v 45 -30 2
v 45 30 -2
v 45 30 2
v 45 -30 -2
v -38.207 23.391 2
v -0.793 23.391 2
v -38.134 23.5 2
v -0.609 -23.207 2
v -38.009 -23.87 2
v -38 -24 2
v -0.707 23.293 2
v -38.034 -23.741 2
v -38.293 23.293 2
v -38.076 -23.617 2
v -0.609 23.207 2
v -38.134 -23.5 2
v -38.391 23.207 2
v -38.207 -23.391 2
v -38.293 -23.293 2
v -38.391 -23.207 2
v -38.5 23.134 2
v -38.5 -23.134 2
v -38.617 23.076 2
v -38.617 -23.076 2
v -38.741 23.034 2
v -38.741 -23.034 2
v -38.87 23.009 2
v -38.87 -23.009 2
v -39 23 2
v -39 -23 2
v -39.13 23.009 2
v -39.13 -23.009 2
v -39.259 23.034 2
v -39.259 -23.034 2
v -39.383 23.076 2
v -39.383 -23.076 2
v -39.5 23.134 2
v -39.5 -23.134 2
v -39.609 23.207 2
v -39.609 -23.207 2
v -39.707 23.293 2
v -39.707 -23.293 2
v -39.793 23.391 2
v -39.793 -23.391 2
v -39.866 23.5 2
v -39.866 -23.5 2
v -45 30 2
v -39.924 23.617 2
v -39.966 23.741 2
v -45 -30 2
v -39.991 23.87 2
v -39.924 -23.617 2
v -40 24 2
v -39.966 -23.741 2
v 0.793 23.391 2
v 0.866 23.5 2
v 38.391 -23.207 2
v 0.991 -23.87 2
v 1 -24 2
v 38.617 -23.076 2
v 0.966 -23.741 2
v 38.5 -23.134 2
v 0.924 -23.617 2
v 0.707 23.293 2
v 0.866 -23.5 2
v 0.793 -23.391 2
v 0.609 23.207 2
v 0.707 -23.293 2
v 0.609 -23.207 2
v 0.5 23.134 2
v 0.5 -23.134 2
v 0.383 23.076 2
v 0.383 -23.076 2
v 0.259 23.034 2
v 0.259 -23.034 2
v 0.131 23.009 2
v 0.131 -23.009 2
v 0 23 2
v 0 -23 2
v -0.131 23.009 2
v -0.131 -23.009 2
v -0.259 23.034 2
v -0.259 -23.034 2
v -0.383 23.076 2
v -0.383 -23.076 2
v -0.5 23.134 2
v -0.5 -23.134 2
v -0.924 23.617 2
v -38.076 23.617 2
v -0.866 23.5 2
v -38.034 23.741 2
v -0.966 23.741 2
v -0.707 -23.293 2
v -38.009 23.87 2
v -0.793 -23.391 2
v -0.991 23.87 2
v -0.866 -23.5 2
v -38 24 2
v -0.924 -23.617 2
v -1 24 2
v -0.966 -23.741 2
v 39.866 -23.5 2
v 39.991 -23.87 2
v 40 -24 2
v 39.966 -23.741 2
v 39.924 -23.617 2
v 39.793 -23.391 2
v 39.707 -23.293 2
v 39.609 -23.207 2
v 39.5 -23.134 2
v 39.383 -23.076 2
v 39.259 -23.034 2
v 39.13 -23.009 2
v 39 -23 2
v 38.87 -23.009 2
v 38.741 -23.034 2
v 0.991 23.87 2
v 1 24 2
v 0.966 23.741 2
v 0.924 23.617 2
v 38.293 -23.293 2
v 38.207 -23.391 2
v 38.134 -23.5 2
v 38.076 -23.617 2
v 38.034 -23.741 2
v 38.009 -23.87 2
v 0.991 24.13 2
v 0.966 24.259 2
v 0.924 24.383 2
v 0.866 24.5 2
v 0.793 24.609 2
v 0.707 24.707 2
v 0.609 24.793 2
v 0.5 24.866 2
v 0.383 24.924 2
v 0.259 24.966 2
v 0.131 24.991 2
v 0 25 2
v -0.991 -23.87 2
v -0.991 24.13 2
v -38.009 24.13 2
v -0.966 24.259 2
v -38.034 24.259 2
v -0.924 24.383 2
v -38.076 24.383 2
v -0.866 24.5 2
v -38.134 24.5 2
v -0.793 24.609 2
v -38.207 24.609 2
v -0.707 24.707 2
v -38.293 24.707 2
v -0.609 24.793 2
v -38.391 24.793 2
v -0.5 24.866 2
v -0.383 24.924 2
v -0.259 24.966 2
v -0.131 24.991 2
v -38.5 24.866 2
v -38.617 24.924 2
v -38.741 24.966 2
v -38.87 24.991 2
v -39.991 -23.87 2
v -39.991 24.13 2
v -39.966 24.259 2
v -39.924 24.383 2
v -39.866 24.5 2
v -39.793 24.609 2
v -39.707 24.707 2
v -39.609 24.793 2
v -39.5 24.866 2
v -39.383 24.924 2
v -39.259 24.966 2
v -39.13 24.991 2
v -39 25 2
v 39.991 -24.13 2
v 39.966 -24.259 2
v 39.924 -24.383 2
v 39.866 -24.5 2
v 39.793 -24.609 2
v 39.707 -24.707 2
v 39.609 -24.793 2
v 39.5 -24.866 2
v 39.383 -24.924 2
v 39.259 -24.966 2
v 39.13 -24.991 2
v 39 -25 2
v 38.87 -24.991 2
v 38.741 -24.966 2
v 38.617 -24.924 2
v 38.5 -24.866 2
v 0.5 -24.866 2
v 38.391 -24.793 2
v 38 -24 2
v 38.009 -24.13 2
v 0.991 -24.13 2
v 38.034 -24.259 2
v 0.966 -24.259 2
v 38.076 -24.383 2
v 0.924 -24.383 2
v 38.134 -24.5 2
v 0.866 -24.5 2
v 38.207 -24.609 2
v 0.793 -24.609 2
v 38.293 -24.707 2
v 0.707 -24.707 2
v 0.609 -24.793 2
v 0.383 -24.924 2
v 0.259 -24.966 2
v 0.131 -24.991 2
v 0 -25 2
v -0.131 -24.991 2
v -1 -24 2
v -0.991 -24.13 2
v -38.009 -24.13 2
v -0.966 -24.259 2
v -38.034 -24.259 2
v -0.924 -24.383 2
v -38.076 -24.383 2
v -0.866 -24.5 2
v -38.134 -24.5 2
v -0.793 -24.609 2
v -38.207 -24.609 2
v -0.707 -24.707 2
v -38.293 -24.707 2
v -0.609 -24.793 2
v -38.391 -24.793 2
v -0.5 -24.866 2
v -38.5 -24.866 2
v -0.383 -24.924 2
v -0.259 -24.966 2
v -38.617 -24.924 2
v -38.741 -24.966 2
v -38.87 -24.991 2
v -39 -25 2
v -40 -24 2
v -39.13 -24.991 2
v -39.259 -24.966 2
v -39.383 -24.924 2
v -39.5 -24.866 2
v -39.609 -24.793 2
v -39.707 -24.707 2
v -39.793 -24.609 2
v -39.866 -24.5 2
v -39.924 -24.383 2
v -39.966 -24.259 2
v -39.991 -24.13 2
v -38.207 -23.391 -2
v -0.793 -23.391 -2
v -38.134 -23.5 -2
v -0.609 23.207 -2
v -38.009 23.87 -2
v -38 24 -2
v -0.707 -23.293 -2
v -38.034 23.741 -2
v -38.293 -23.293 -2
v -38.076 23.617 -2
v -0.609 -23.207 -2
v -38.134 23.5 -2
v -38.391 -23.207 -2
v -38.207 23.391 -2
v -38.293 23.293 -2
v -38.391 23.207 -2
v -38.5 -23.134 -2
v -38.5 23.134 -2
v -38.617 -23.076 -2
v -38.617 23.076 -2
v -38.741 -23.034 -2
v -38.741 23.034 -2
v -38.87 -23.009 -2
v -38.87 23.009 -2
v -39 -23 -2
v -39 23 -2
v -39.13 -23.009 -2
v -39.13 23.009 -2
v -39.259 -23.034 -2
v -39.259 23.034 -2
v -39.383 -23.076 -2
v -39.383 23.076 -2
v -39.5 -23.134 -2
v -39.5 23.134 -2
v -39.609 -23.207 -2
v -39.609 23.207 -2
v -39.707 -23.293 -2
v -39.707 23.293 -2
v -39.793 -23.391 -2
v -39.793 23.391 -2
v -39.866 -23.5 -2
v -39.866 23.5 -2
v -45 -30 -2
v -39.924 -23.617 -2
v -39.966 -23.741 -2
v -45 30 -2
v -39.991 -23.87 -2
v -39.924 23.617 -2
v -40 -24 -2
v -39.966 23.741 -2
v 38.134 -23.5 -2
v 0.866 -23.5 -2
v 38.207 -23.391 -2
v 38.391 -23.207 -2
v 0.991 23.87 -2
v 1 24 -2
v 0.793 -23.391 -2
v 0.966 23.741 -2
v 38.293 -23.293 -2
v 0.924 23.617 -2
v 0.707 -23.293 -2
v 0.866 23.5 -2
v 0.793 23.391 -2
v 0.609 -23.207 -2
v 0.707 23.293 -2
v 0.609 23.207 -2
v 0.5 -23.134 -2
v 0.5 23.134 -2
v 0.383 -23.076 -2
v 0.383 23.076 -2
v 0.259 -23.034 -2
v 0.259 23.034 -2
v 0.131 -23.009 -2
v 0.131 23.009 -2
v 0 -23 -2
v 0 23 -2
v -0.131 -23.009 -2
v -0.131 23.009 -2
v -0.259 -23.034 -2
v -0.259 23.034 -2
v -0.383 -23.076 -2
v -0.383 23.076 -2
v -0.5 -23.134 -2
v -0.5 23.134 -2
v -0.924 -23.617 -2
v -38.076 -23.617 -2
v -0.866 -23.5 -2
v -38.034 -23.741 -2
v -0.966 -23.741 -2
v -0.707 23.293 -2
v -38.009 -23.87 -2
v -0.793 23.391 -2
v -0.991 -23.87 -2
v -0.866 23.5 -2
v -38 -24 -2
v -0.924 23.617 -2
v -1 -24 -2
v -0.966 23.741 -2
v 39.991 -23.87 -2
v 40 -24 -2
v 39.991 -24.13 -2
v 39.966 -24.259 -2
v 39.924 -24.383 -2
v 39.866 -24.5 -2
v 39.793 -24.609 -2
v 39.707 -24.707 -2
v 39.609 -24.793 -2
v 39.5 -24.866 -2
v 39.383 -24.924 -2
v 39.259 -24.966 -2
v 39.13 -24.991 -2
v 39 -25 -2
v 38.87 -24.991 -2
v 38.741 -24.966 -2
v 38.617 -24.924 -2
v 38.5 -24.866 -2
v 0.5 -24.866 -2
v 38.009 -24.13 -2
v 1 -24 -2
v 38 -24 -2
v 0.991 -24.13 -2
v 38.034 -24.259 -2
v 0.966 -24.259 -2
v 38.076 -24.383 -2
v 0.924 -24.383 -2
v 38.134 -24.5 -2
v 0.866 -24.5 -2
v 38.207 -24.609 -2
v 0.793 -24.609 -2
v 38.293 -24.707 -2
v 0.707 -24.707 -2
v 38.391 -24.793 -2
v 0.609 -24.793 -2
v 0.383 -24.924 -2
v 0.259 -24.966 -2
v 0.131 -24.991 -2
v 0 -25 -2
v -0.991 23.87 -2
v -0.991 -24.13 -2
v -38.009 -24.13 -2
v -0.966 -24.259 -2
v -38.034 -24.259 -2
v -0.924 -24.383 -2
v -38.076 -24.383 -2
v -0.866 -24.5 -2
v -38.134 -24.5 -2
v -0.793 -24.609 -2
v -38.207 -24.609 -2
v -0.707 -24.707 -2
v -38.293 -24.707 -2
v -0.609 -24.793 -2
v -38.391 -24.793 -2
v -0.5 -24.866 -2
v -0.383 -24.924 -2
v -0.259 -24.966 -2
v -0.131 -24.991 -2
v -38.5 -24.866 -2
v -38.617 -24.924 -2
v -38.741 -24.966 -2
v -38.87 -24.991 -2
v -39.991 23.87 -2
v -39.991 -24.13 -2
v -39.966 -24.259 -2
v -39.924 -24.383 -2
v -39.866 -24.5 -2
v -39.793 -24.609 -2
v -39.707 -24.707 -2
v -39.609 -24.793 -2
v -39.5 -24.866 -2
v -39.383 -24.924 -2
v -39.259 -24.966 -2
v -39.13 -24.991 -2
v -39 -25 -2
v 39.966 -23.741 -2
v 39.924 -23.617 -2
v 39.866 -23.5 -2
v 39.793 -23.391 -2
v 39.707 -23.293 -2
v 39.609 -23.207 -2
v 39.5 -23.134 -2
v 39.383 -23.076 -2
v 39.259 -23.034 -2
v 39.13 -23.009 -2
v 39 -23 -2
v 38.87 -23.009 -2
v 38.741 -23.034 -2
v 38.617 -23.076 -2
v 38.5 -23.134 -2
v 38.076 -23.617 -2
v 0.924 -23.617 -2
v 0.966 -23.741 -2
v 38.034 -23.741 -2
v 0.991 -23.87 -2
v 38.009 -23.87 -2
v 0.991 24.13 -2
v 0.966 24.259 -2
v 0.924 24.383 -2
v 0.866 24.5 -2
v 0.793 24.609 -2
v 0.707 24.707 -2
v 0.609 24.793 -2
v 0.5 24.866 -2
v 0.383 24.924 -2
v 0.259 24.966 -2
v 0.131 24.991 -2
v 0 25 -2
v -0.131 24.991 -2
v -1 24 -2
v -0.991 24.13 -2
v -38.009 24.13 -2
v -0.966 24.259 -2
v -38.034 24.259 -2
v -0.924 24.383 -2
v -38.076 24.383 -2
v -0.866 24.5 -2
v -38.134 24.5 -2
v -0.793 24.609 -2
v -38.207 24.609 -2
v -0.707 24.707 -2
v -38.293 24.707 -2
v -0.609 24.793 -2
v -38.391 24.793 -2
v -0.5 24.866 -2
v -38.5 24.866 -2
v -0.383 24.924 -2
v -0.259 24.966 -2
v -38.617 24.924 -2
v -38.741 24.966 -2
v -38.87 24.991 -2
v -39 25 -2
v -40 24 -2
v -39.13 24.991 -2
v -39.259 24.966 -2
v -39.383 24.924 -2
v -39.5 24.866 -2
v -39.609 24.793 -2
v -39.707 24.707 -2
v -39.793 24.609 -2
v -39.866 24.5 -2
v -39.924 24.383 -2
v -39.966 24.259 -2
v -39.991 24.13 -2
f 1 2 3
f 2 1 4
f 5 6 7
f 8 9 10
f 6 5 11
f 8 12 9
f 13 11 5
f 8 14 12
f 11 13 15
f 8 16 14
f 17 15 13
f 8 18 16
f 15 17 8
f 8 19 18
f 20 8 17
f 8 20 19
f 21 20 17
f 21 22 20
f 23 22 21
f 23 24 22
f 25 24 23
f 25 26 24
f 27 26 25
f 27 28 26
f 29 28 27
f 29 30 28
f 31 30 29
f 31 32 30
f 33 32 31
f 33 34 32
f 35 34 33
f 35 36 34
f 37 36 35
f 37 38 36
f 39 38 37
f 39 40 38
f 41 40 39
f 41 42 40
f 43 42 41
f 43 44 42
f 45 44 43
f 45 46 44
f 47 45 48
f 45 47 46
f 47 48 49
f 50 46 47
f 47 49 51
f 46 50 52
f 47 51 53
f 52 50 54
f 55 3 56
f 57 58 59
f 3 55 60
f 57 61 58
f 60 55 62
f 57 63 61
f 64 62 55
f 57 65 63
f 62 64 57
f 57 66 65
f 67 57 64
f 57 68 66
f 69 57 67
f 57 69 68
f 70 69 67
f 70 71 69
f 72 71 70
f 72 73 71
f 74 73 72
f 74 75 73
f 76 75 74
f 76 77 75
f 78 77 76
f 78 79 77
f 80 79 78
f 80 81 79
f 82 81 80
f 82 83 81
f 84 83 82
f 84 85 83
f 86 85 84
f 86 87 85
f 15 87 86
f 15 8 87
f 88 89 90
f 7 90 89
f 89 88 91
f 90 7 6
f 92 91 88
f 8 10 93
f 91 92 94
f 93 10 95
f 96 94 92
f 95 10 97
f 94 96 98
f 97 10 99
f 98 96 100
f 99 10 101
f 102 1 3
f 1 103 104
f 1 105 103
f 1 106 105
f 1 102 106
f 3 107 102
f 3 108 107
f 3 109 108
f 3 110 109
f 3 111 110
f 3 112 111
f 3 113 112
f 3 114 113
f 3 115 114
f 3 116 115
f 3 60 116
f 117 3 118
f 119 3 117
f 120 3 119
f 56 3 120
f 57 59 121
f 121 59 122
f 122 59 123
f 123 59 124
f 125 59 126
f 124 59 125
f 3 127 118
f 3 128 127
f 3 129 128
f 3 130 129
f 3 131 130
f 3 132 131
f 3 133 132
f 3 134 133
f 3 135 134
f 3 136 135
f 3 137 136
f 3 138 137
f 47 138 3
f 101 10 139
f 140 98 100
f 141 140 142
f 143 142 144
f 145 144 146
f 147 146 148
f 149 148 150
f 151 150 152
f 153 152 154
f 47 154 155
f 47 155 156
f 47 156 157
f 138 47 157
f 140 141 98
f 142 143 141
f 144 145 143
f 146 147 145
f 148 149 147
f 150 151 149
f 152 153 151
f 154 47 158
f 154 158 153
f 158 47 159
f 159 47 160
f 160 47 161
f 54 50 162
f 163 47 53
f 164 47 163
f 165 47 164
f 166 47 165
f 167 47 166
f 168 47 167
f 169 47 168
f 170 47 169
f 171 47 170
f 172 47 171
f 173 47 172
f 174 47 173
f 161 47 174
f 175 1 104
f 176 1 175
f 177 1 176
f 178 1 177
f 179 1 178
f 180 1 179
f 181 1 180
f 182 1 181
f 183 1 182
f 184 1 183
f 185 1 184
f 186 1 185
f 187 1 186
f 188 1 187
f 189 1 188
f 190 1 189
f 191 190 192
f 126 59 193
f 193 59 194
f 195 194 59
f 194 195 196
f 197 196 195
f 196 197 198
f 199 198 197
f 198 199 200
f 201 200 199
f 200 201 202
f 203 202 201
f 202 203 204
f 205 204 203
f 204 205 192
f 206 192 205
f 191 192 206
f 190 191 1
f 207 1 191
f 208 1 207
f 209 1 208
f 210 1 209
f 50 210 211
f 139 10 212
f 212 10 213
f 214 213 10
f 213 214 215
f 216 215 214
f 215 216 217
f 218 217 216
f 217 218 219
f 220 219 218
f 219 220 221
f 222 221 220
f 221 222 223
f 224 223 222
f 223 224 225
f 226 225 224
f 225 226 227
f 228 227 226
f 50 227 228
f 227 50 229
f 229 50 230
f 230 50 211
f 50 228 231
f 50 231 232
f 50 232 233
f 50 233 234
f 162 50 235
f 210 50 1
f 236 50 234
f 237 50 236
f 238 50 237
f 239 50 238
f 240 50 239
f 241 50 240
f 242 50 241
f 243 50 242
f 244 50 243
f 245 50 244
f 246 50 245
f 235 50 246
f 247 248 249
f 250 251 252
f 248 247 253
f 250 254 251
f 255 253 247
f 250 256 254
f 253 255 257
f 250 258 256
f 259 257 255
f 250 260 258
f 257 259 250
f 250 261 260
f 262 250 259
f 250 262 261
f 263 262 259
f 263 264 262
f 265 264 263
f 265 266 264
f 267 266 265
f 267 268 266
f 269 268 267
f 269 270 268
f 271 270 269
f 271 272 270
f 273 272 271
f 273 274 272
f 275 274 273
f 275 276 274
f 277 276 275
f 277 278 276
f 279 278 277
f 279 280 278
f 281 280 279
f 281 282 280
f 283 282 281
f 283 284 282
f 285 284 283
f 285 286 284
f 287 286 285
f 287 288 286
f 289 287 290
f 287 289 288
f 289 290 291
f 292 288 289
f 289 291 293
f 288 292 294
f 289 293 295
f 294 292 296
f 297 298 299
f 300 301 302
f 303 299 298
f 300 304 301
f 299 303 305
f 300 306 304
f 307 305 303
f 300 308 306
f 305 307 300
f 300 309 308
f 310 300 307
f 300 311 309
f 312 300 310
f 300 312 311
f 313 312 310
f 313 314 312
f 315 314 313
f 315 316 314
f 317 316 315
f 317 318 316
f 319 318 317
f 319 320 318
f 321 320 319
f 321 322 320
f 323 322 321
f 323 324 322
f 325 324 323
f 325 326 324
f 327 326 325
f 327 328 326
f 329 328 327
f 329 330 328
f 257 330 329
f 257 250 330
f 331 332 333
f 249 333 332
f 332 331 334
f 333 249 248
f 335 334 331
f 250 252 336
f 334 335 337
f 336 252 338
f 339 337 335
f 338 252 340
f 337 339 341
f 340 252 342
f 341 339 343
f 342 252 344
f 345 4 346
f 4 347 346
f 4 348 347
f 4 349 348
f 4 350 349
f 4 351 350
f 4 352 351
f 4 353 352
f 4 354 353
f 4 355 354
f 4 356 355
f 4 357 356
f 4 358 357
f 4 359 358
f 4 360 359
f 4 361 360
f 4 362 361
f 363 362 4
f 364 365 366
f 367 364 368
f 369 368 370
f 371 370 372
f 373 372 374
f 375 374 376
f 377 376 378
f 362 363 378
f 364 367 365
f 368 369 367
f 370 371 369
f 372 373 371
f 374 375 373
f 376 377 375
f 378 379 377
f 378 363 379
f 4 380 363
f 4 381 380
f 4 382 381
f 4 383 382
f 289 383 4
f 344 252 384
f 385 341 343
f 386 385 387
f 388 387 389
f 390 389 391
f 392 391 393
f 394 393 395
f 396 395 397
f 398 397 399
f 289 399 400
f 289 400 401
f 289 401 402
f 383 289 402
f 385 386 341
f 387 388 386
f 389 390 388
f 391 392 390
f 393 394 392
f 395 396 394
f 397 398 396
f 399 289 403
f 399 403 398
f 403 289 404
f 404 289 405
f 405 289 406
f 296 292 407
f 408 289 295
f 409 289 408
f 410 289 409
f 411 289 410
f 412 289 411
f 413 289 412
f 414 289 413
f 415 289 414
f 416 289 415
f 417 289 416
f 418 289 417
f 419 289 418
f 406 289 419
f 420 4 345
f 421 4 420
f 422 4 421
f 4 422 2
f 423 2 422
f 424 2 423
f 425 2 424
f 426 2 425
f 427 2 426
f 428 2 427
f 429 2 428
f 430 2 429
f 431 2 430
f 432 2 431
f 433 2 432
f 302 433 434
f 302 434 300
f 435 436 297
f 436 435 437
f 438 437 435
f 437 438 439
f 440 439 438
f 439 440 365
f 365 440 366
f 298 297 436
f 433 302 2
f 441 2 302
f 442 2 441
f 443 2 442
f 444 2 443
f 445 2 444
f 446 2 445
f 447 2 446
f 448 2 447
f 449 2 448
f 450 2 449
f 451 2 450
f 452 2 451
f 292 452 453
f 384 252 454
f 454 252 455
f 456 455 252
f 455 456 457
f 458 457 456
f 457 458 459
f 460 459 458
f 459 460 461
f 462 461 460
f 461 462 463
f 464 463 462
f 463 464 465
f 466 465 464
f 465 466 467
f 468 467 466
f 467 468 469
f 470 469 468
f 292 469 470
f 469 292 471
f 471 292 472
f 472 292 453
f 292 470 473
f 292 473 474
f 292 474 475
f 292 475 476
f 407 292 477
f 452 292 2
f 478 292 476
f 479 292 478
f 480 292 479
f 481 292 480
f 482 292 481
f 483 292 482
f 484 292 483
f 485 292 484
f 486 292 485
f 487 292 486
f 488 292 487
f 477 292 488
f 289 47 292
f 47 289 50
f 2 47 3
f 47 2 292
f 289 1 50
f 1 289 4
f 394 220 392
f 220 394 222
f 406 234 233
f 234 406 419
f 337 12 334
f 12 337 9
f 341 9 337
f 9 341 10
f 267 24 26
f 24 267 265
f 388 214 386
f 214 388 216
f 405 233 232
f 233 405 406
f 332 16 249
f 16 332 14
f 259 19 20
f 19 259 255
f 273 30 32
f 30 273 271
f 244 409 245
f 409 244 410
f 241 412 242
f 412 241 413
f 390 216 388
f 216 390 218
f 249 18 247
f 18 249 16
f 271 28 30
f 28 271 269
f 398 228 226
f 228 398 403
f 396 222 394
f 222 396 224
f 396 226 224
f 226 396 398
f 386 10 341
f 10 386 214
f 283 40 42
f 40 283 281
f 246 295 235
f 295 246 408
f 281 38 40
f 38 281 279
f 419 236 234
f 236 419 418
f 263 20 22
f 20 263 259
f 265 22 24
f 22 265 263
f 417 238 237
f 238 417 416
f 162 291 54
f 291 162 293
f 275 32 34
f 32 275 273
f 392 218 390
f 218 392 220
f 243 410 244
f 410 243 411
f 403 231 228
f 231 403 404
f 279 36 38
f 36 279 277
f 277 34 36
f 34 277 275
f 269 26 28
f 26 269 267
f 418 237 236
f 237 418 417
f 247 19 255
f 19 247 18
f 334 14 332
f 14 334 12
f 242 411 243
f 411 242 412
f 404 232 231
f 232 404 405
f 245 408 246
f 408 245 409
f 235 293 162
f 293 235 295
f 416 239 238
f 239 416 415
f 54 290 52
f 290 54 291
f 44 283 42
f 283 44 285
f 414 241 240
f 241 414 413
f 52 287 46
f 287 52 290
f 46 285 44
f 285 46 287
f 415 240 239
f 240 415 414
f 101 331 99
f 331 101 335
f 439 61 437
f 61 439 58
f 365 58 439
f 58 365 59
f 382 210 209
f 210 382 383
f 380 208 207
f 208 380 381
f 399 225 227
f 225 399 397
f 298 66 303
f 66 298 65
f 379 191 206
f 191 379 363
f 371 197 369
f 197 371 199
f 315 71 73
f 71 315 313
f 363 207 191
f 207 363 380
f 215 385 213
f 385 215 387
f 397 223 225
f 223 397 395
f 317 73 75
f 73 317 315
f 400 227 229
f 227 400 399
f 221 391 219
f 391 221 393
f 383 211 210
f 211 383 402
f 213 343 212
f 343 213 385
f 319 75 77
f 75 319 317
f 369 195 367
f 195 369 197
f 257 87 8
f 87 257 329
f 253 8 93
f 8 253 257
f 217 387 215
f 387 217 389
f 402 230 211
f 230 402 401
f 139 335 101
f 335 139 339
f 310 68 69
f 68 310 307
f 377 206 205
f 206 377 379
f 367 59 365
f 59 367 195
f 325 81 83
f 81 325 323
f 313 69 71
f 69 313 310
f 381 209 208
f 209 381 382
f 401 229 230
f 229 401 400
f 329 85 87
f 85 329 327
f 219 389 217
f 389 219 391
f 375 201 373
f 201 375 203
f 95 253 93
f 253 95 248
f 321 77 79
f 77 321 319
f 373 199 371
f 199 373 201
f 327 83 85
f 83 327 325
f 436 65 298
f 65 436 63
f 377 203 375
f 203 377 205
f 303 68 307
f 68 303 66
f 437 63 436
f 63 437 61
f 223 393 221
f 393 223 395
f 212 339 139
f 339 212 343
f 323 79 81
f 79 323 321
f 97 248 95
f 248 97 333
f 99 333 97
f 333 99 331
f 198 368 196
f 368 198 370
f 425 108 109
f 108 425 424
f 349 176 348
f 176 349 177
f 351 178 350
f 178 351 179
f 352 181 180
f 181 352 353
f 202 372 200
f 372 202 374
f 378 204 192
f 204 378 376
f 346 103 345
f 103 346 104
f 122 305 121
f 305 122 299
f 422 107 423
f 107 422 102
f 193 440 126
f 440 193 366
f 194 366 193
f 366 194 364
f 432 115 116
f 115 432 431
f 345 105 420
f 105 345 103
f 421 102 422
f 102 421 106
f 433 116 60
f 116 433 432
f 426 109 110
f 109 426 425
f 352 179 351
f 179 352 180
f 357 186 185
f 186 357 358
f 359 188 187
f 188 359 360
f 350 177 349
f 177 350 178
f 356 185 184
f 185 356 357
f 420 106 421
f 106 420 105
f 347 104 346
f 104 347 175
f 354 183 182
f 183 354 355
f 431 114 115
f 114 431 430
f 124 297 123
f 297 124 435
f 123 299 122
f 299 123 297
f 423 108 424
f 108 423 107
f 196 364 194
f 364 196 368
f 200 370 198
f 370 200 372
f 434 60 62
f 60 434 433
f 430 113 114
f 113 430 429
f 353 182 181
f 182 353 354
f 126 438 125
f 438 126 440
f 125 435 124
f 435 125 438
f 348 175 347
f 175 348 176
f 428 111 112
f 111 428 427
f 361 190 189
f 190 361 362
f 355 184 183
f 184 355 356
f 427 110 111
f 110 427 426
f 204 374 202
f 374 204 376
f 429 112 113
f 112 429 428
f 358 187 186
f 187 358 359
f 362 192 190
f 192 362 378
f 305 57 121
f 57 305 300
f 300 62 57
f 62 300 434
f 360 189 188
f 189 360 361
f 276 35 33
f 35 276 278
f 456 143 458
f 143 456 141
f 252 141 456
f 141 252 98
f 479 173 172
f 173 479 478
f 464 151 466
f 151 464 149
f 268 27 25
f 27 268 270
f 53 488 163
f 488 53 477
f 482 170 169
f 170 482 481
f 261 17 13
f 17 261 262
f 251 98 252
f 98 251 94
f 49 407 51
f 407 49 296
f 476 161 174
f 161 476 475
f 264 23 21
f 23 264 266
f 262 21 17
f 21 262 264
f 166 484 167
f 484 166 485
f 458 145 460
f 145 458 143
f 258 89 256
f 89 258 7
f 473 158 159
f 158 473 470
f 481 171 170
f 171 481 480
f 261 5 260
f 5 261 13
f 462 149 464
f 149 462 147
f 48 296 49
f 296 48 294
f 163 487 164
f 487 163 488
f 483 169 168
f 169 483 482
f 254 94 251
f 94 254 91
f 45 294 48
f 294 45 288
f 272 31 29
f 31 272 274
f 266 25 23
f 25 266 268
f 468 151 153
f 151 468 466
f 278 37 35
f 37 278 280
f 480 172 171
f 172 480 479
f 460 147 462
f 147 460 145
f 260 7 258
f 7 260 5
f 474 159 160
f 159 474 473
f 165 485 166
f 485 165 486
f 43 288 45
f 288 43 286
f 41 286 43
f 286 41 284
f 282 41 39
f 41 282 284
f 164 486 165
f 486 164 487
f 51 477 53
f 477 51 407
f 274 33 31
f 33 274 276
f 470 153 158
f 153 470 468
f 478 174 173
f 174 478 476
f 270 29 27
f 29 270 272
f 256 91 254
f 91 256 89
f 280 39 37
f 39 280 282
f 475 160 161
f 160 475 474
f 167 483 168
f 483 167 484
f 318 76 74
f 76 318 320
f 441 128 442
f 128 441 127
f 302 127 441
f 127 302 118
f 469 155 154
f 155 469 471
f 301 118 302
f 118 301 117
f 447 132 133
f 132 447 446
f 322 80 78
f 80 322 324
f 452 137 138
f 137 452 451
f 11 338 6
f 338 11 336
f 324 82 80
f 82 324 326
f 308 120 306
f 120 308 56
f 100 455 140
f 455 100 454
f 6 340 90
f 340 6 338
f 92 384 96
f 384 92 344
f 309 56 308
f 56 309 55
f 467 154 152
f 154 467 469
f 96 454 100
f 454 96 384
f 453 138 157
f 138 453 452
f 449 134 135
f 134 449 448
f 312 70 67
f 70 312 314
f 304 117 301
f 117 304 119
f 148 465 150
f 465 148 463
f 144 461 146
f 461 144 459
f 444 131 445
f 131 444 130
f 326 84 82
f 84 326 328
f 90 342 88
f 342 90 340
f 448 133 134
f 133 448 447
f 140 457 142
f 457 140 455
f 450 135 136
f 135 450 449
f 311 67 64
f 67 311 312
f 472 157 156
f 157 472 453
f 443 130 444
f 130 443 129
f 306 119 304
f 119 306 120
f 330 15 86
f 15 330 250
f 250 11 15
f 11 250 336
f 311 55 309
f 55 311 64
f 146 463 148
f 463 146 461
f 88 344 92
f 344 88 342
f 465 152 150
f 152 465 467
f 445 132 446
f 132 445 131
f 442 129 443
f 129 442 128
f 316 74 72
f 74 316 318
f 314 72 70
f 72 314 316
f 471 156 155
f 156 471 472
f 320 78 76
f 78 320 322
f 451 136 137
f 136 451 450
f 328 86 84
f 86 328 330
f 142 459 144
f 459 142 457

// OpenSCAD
// ========================================
// a 9 x 6 x 0.4 cm plate with five 0.2 cm holes
// NeuroCAD canonical IR; dimensions are millimetres
// ========================================
$fn = 48;

difference() {
  cube(size=[90, 60, 4], center=true);
  translate([-39, -24, 0]) {
    cylinder(r=1, h=6, center=true);
  }
  translate([0, -24, 0]) {
    cylinder(r=1, h=6, center=true);
  }
  translate([39, -24, 0]) {
    cylinder(r=1, h=6, center=true);
  }
  translate([-39, 24, 0]) {
    cylinder(r=1, h=6, center=true);
  }
  translate([0, 24, 0]) {
    cylinder(r=1, h=6, center=true);
  }
}
